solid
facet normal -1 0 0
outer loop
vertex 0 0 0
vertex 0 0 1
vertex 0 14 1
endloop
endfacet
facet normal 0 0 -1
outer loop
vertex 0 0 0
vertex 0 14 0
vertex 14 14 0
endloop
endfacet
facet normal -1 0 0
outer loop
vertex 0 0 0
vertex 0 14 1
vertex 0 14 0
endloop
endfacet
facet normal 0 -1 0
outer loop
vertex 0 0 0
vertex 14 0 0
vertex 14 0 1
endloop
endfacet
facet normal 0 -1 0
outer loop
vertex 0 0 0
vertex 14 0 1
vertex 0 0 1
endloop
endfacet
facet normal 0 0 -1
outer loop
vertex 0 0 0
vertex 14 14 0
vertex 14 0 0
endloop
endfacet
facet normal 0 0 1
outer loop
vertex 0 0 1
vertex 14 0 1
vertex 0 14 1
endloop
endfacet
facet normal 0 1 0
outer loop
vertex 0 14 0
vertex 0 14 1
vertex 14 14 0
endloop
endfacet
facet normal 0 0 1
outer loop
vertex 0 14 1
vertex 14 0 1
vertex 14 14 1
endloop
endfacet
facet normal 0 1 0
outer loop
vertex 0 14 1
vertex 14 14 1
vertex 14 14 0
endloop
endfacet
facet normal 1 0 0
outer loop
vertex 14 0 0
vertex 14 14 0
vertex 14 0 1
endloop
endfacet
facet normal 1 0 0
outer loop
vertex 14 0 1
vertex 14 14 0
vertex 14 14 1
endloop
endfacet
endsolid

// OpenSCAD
/* Warning, this is a very basic generator with a lot of approximation 
input data : [TQFP, Z2X, 14x14x1mm, 128, , D, C04-00181D]
generated by com.zoubworld.electronics.cad.model3d.Basic
Date : Sun Feb 15 10:50:48 CET 2026
*/

//body
color("black")
translate([0,0,0])
cube([14.0,14.0,1.0], center=false);
